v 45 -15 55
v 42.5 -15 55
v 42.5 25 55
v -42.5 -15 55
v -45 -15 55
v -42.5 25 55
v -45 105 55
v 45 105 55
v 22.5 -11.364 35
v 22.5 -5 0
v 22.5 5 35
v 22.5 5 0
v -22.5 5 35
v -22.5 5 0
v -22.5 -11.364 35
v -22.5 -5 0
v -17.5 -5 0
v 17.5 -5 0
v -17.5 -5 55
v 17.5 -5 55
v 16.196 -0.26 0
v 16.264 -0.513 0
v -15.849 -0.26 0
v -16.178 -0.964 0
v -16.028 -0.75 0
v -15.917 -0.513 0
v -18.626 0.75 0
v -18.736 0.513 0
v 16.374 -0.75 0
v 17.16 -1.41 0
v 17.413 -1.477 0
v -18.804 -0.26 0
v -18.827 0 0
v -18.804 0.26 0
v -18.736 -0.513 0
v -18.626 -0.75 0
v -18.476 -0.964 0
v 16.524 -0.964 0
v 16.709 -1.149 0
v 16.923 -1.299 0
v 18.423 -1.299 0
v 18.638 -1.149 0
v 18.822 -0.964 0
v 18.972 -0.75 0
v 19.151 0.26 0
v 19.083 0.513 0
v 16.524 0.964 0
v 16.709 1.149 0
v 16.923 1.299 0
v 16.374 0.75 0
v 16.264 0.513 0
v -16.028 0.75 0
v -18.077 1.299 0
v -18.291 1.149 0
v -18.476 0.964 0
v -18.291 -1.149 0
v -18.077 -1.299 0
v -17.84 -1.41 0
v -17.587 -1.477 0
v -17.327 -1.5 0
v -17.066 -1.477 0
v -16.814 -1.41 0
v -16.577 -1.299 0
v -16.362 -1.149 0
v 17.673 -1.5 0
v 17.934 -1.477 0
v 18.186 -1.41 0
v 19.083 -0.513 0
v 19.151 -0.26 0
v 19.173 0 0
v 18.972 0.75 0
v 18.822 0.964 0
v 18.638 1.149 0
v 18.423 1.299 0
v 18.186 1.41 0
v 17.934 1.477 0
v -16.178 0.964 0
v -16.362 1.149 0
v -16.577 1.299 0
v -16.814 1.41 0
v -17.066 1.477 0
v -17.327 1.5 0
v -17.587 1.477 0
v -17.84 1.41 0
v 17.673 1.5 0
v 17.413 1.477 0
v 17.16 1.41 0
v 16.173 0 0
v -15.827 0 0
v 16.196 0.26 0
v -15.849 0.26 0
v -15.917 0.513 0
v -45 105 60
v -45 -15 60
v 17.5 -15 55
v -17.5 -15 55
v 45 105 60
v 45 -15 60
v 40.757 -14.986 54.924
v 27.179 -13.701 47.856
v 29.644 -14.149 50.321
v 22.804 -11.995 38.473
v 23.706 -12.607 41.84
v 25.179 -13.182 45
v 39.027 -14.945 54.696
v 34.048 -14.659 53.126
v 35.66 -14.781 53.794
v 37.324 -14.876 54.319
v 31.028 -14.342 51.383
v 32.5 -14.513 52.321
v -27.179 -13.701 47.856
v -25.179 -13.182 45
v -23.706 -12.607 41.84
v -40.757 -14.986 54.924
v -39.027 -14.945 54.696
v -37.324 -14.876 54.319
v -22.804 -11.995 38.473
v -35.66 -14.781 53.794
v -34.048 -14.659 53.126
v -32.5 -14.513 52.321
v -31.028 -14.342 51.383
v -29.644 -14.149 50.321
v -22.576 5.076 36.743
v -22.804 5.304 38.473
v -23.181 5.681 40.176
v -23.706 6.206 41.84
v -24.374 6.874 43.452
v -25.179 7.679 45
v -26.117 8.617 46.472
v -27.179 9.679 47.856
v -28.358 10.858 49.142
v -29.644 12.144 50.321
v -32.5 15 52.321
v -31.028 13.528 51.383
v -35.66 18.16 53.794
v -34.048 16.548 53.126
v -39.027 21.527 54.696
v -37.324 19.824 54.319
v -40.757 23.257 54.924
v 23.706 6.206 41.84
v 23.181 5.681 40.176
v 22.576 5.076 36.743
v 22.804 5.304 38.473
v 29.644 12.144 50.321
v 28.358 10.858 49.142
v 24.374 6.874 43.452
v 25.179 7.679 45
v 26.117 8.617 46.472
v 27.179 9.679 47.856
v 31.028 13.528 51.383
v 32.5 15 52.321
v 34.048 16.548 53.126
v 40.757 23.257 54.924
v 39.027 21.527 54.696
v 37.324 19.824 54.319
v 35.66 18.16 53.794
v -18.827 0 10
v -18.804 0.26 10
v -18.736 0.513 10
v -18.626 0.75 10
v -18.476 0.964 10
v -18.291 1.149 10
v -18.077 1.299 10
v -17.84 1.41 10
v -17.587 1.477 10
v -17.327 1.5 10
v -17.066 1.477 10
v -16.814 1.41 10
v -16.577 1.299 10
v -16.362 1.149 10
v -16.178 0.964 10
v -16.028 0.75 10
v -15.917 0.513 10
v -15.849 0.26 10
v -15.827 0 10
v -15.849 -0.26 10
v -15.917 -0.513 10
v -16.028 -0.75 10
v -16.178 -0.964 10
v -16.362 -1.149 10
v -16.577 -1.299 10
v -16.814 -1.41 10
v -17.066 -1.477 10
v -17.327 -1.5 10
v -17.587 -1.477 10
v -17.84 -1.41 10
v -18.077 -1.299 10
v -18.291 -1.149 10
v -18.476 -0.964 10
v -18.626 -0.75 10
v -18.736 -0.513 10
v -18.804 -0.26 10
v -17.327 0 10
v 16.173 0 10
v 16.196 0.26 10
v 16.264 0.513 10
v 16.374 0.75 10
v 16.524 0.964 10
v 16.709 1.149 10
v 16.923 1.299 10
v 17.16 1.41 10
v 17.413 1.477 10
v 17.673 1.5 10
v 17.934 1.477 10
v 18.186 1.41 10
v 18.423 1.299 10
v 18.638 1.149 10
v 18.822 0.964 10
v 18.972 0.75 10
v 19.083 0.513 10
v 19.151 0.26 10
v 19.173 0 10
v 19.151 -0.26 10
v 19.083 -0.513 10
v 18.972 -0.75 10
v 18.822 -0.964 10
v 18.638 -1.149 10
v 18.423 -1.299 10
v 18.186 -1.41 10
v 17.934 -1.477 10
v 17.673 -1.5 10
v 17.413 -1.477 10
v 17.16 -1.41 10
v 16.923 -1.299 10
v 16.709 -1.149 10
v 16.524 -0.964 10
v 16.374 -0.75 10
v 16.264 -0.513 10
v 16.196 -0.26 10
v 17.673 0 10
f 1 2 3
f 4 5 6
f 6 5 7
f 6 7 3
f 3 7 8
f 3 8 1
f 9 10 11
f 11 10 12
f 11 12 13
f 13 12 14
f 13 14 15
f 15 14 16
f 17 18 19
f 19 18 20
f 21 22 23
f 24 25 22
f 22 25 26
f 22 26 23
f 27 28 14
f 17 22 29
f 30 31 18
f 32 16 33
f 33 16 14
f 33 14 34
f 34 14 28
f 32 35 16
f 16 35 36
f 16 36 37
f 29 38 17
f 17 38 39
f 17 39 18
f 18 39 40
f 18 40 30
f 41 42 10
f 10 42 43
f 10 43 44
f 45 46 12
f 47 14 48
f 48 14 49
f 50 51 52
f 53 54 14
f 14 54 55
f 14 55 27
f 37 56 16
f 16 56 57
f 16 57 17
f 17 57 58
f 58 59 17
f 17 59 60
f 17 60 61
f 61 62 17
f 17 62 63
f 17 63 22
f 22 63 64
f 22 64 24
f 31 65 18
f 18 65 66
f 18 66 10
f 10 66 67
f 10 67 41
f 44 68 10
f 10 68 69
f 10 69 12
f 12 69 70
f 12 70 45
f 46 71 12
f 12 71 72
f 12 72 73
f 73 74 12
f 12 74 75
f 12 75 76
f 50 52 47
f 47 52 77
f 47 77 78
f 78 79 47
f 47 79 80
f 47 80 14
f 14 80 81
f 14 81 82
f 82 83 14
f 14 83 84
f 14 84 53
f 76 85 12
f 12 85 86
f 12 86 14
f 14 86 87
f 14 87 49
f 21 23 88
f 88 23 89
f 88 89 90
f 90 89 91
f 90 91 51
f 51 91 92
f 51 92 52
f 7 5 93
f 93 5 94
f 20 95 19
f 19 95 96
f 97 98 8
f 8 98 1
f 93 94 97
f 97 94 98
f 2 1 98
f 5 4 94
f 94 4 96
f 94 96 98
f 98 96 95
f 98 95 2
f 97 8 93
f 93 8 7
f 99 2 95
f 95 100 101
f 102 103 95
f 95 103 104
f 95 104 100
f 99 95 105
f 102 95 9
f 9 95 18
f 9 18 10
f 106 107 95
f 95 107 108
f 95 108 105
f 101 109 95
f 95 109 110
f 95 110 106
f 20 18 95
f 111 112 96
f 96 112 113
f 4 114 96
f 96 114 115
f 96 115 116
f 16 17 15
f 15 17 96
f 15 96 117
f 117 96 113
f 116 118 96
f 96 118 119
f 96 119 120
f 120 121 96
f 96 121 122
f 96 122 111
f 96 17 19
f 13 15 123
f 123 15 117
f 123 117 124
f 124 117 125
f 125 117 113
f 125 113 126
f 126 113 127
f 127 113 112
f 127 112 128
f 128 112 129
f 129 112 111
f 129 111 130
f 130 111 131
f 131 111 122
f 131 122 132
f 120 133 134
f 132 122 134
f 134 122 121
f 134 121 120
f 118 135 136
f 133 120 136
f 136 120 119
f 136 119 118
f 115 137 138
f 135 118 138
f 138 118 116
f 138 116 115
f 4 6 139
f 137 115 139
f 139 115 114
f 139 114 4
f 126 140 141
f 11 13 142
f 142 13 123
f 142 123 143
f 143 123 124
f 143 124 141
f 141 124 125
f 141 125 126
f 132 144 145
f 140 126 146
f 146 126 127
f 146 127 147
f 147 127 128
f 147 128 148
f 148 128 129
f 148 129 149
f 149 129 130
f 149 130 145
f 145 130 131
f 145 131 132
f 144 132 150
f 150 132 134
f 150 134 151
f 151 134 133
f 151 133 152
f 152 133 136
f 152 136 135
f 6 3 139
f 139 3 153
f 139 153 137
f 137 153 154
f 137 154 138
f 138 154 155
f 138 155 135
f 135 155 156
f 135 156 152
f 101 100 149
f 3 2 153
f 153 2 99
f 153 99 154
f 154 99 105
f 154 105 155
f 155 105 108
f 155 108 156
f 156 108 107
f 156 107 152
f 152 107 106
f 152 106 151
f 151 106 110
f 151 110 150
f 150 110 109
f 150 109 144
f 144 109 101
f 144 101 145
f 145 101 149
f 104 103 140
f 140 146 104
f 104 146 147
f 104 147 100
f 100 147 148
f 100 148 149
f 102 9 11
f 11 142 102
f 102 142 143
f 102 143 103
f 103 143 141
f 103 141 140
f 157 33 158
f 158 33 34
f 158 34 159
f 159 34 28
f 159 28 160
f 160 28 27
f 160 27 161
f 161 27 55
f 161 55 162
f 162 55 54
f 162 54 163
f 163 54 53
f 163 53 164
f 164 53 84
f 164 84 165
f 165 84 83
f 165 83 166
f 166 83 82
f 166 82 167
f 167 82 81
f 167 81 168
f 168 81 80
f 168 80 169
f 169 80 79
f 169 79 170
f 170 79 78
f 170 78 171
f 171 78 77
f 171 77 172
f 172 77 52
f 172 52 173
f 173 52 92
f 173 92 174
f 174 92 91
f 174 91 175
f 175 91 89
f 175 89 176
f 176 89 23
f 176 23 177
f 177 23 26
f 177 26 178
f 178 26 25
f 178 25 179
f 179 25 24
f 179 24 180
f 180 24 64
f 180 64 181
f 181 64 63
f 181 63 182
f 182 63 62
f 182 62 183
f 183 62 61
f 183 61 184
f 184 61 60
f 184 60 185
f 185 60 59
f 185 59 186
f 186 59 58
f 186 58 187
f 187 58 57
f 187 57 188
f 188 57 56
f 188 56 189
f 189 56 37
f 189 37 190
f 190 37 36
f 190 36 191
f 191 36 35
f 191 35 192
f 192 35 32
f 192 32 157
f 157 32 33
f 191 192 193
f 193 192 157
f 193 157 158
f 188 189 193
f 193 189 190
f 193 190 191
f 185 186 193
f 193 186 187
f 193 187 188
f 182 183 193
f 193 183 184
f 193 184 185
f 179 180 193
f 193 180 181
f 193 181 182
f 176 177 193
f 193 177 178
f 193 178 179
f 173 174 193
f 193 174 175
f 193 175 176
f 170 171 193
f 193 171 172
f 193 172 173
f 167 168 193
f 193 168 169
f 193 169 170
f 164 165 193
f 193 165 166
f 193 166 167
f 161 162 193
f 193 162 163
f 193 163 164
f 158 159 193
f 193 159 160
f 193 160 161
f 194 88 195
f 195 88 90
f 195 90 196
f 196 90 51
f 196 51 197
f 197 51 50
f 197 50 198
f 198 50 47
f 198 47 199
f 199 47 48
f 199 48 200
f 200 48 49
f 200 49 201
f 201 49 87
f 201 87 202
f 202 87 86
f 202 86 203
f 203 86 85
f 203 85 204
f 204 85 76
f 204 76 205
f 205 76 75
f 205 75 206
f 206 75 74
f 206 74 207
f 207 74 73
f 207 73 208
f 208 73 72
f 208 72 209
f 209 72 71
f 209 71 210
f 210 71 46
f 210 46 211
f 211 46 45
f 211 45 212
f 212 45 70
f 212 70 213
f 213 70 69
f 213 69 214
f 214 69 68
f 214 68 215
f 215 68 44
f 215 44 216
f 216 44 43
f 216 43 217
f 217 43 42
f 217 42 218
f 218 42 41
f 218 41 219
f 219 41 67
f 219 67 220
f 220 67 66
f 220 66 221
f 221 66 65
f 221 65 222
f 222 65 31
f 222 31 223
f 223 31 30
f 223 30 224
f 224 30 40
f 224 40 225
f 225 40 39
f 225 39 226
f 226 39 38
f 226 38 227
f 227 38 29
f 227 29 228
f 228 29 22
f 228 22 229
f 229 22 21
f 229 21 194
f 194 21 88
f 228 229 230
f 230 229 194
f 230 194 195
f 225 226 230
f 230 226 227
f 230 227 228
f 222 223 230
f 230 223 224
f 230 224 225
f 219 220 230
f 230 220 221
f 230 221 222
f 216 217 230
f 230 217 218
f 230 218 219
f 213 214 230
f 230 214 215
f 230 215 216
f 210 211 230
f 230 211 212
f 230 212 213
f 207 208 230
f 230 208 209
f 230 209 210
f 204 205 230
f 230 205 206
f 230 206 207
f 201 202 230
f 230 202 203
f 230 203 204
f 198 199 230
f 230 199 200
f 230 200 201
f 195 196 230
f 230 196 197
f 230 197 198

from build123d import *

# Parameters (mm, degrees)
ESBO_O1_W                     = 45
ESBO_O1_H                     = 10
RESSALTO_EXTRUS_O1_DEPTH      = 55
RESSALTO_EXTRUS_O2_DEPTH      = 100
RESSALTO_EXTRUS_O2_DEPTH_BACK = 20
ESBO_O2_W                     = 90
ESBO_O2_H                     = 5
RESSALTO_EXTRUS_O3_DEPTH      = 5
FILETE1_R                     = 20
ESBO_O6_R                     = 1.5
CORTE_EXTRUS_O1_DEPTH         = 10


with BuildPart() as part:
    # Esboço1 → Ressalto-extrusão1 (new body)
    with BuildSketch(Plane.XY):
        Rectangle(ESBO_O1_W, ESBO_O1_H)
    extrude(amount=RESSALTO_EXTRUS_O1_DEPTH)

    # Esboço2 → Ressalto-extrusão2 (add, two sides: drawn at the far end of the back side and taken through both)
    with BuildSketch(Plane(origin=(0, 5, 0), x_dir=(1, 0, 0), z_dir=(0, 1, 0)).offset(-RESSALTO_EXTRUS_O2_DEPTH_BACK)):
        with Locations((0, -57.5)):
            Rectangle(ESBO_O2_W, ESBO_O2_H)
    extrude(amount=RESSALTO_EXTRUS_O2_DEPTH + RESSALTO_EXTRUS_O2_DEPTH_BACK)

    # Esboço5 → Ressalto-extrusão3 (add)
    with BuildSketch(Plane(origin=(22.5, 0, 0), x_dir=(0, 0, -1), z_dir=(1, 0, 0))):
        Polygon((-55, -5), (0, -5), (-55, -15), align=None)
    ressalto_extrus_o3 = extrude(amount=-RESSALTO_EXTRUS_O3_DEPTH)

    # Espelhar1: Ressalto-extrusão3 across plane
    add(ressalto_extrus_o3.mirror(Plane(origin=(0, 0, 0), x_dir=(0, 0, 1), z_dir=(1, 0, 0))))

    # Filete1
    filete1_edges = [part.edges().sort_by_distance(p)[0] for p in [
        (-22.5, -5, 55),
        (22.5, -5, 55),
        (0, 5, 55),
    ]]
    fillet(filete1_edges, radius=FILETE1_R)

    # Esboço6 → Corte-extrusão1 (cut)
    with BuildSketch(Plane(origin=(0, 0, 0), x_dir=(-1, 0, 0), z_dir=(0, 0, -1))):
        with Locations((-17.673330857, 0)):
            Circle(ESBO_O6_R)
        with Locations((17.326669143, 0)):
            Circle(ESBO_O6_R)
    extrude(amount=-CORTE_EXTRUS_O1_DEPTH, mode=Mode.SUBTRACT)


solid = part.part
